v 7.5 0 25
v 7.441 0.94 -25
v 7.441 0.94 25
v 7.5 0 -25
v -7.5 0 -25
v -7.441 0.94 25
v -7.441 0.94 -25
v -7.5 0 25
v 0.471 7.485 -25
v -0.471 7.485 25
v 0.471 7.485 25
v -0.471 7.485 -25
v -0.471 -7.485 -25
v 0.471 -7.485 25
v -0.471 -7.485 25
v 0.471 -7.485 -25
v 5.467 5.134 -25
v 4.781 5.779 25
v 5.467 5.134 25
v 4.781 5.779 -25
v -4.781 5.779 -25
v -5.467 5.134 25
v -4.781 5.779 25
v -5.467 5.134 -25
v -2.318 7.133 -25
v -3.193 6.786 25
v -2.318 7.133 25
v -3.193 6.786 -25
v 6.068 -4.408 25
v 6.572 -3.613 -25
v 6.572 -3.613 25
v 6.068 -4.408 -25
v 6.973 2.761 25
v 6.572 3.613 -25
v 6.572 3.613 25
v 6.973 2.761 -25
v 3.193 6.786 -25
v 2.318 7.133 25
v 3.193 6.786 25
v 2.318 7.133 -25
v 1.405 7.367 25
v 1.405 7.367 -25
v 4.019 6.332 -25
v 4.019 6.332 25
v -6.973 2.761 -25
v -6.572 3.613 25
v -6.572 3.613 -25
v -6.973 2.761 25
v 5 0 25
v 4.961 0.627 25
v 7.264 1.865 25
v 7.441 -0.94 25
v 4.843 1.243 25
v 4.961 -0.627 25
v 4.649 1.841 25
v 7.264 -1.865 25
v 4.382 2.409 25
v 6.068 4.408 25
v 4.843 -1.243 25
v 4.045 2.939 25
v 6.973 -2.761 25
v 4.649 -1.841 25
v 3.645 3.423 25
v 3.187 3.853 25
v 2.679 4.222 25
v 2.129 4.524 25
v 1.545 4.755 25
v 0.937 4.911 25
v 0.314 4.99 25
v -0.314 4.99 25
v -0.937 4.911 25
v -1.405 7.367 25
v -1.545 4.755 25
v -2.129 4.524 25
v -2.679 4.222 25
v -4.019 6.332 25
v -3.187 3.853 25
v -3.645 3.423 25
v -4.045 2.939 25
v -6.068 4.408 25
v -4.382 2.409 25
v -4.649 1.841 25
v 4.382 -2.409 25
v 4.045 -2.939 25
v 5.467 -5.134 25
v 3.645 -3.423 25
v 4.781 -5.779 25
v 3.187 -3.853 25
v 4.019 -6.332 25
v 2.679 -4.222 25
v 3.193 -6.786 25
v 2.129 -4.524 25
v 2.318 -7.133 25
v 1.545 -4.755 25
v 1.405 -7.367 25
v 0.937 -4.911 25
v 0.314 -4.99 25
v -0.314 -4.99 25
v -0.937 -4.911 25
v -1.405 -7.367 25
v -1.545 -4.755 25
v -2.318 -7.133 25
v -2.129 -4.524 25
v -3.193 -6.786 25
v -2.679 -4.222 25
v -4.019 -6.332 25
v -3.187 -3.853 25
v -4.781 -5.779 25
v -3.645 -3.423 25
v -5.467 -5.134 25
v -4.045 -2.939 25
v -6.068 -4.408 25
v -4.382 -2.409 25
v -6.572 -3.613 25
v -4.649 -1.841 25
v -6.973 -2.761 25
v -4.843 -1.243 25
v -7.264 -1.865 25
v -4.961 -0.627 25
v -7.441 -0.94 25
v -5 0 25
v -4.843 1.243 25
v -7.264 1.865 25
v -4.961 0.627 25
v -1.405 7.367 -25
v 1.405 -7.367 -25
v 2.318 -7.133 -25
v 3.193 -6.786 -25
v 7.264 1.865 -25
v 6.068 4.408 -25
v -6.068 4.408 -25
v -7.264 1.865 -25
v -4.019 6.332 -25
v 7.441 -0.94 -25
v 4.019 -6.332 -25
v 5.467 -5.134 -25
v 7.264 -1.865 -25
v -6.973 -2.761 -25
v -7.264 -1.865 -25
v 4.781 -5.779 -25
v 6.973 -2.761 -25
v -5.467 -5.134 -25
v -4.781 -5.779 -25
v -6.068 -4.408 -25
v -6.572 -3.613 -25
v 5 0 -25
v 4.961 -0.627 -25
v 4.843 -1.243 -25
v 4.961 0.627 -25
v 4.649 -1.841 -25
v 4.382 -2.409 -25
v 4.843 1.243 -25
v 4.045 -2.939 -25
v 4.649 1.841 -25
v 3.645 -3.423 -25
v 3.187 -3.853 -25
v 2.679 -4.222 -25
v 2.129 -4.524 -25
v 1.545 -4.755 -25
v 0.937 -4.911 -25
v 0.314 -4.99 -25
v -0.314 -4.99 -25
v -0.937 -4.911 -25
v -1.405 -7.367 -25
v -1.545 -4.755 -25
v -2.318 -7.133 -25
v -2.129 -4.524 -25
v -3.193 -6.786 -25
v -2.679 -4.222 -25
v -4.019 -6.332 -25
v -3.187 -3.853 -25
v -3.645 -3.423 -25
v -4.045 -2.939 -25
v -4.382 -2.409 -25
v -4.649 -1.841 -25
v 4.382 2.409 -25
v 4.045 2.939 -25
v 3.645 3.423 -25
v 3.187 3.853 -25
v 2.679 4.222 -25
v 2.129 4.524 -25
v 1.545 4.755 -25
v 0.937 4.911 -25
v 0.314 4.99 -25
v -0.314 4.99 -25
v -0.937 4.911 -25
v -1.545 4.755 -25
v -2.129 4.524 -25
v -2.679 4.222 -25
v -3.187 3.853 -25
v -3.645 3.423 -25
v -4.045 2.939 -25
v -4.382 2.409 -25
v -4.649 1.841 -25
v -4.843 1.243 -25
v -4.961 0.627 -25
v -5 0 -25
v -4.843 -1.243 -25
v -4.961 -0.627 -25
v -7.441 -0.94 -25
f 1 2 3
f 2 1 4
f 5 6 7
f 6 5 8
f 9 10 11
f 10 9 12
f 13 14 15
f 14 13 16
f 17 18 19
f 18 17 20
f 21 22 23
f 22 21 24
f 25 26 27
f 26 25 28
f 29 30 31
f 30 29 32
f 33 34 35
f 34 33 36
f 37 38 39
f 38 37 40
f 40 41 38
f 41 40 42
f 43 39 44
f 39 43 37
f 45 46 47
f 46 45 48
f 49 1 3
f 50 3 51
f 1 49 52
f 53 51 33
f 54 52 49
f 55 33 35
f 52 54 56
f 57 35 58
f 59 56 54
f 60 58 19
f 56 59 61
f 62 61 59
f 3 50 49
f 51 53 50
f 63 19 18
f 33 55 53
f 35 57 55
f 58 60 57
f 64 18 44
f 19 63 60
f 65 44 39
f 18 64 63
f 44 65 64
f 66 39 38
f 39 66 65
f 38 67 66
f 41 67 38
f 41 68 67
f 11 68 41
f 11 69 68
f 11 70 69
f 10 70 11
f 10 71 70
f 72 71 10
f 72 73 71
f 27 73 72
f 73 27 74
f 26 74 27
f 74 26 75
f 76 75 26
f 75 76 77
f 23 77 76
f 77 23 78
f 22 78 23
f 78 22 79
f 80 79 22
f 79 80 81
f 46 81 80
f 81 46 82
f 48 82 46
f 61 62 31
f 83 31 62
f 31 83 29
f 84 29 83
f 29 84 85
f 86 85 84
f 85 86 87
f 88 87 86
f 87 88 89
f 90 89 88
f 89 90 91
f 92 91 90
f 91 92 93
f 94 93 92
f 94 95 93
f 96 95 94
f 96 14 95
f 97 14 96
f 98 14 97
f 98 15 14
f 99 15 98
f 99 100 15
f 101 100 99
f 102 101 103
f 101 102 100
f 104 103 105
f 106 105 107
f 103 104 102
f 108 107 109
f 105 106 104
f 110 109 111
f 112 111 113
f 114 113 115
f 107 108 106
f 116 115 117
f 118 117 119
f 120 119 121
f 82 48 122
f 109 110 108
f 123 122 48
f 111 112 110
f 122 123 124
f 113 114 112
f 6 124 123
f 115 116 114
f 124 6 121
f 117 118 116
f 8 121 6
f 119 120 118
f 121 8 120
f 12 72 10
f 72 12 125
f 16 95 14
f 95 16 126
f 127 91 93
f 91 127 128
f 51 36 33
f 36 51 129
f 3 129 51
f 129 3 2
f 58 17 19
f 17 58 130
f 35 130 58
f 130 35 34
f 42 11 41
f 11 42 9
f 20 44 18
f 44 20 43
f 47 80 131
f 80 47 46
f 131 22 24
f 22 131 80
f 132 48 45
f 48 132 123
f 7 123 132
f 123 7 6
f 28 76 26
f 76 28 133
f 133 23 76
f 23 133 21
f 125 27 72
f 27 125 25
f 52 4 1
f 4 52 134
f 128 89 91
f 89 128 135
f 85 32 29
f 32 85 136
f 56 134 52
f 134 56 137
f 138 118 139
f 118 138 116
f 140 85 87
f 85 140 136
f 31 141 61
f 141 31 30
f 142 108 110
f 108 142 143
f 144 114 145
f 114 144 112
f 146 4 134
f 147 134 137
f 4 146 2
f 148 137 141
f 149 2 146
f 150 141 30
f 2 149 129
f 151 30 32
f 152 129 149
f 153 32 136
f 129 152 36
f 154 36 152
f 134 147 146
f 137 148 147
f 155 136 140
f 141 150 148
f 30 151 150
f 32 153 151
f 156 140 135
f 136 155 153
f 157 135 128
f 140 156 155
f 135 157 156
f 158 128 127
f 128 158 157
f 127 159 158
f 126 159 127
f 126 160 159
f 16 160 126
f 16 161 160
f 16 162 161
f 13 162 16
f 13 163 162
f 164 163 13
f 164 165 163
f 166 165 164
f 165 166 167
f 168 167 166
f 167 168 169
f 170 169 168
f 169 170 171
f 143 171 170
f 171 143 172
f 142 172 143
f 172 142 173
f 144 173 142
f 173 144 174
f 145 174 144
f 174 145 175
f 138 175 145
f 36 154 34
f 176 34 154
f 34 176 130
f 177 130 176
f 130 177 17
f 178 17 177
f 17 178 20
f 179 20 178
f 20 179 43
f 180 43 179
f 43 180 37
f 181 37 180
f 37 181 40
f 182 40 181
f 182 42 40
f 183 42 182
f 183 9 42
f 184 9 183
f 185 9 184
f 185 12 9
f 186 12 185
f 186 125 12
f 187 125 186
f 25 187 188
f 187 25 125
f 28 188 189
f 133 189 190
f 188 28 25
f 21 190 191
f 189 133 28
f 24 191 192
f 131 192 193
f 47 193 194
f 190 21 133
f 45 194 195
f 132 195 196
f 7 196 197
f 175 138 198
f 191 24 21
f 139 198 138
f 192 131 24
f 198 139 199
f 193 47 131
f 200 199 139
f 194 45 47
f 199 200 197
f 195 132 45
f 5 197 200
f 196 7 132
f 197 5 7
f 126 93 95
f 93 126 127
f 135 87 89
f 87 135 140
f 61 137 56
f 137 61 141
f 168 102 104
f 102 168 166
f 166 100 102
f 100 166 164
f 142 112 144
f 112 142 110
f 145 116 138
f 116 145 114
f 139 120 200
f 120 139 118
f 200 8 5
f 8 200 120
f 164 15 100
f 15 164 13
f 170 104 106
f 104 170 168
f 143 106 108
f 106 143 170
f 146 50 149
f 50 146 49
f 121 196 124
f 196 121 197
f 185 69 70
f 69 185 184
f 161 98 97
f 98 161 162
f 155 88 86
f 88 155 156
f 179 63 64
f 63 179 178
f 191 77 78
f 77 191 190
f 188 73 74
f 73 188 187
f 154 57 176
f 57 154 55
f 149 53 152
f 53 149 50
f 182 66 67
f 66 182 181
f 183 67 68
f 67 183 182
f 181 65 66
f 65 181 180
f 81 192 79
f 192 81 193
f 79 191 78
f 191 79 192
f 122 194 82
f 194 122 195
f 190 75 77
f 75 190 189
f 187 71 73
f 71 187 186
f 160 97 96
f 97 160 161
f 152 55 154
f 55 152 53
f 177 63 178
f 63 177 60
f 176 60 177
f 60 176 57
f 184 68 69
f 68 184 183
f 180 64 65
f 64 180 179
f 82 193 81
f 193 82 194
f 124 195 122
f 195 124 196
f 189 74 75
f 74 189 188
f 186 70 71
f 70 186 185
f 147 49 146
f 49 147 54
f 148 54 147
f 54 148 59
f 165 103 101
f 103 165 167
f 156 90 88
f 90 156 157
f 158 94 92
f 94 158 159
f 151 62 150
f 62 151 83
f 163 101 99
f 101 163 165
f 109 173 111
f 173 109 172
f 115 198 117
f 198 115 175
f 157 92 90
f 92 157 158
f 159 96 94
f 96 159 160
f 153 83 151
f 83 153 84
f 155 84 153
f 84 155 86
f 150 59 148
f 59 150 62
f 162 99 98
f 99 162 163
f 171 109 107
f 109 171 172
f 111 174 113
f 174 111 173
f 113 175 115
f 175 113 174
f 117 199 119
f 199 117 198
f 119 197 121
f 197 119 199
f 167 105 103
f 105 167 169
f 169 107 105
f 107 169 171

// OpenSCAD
$fn = 50;


difference() {
	union() {
		translate(v = [0, 0, -25.0000000000]) {
			cylinder(h = 50, r = 7.5000000000);
		}
	}
	union() {
		translate(v = [0, 0, -100.0000000000]) {
			cylinder(h = 200, r = 5);
		}
	}
}
